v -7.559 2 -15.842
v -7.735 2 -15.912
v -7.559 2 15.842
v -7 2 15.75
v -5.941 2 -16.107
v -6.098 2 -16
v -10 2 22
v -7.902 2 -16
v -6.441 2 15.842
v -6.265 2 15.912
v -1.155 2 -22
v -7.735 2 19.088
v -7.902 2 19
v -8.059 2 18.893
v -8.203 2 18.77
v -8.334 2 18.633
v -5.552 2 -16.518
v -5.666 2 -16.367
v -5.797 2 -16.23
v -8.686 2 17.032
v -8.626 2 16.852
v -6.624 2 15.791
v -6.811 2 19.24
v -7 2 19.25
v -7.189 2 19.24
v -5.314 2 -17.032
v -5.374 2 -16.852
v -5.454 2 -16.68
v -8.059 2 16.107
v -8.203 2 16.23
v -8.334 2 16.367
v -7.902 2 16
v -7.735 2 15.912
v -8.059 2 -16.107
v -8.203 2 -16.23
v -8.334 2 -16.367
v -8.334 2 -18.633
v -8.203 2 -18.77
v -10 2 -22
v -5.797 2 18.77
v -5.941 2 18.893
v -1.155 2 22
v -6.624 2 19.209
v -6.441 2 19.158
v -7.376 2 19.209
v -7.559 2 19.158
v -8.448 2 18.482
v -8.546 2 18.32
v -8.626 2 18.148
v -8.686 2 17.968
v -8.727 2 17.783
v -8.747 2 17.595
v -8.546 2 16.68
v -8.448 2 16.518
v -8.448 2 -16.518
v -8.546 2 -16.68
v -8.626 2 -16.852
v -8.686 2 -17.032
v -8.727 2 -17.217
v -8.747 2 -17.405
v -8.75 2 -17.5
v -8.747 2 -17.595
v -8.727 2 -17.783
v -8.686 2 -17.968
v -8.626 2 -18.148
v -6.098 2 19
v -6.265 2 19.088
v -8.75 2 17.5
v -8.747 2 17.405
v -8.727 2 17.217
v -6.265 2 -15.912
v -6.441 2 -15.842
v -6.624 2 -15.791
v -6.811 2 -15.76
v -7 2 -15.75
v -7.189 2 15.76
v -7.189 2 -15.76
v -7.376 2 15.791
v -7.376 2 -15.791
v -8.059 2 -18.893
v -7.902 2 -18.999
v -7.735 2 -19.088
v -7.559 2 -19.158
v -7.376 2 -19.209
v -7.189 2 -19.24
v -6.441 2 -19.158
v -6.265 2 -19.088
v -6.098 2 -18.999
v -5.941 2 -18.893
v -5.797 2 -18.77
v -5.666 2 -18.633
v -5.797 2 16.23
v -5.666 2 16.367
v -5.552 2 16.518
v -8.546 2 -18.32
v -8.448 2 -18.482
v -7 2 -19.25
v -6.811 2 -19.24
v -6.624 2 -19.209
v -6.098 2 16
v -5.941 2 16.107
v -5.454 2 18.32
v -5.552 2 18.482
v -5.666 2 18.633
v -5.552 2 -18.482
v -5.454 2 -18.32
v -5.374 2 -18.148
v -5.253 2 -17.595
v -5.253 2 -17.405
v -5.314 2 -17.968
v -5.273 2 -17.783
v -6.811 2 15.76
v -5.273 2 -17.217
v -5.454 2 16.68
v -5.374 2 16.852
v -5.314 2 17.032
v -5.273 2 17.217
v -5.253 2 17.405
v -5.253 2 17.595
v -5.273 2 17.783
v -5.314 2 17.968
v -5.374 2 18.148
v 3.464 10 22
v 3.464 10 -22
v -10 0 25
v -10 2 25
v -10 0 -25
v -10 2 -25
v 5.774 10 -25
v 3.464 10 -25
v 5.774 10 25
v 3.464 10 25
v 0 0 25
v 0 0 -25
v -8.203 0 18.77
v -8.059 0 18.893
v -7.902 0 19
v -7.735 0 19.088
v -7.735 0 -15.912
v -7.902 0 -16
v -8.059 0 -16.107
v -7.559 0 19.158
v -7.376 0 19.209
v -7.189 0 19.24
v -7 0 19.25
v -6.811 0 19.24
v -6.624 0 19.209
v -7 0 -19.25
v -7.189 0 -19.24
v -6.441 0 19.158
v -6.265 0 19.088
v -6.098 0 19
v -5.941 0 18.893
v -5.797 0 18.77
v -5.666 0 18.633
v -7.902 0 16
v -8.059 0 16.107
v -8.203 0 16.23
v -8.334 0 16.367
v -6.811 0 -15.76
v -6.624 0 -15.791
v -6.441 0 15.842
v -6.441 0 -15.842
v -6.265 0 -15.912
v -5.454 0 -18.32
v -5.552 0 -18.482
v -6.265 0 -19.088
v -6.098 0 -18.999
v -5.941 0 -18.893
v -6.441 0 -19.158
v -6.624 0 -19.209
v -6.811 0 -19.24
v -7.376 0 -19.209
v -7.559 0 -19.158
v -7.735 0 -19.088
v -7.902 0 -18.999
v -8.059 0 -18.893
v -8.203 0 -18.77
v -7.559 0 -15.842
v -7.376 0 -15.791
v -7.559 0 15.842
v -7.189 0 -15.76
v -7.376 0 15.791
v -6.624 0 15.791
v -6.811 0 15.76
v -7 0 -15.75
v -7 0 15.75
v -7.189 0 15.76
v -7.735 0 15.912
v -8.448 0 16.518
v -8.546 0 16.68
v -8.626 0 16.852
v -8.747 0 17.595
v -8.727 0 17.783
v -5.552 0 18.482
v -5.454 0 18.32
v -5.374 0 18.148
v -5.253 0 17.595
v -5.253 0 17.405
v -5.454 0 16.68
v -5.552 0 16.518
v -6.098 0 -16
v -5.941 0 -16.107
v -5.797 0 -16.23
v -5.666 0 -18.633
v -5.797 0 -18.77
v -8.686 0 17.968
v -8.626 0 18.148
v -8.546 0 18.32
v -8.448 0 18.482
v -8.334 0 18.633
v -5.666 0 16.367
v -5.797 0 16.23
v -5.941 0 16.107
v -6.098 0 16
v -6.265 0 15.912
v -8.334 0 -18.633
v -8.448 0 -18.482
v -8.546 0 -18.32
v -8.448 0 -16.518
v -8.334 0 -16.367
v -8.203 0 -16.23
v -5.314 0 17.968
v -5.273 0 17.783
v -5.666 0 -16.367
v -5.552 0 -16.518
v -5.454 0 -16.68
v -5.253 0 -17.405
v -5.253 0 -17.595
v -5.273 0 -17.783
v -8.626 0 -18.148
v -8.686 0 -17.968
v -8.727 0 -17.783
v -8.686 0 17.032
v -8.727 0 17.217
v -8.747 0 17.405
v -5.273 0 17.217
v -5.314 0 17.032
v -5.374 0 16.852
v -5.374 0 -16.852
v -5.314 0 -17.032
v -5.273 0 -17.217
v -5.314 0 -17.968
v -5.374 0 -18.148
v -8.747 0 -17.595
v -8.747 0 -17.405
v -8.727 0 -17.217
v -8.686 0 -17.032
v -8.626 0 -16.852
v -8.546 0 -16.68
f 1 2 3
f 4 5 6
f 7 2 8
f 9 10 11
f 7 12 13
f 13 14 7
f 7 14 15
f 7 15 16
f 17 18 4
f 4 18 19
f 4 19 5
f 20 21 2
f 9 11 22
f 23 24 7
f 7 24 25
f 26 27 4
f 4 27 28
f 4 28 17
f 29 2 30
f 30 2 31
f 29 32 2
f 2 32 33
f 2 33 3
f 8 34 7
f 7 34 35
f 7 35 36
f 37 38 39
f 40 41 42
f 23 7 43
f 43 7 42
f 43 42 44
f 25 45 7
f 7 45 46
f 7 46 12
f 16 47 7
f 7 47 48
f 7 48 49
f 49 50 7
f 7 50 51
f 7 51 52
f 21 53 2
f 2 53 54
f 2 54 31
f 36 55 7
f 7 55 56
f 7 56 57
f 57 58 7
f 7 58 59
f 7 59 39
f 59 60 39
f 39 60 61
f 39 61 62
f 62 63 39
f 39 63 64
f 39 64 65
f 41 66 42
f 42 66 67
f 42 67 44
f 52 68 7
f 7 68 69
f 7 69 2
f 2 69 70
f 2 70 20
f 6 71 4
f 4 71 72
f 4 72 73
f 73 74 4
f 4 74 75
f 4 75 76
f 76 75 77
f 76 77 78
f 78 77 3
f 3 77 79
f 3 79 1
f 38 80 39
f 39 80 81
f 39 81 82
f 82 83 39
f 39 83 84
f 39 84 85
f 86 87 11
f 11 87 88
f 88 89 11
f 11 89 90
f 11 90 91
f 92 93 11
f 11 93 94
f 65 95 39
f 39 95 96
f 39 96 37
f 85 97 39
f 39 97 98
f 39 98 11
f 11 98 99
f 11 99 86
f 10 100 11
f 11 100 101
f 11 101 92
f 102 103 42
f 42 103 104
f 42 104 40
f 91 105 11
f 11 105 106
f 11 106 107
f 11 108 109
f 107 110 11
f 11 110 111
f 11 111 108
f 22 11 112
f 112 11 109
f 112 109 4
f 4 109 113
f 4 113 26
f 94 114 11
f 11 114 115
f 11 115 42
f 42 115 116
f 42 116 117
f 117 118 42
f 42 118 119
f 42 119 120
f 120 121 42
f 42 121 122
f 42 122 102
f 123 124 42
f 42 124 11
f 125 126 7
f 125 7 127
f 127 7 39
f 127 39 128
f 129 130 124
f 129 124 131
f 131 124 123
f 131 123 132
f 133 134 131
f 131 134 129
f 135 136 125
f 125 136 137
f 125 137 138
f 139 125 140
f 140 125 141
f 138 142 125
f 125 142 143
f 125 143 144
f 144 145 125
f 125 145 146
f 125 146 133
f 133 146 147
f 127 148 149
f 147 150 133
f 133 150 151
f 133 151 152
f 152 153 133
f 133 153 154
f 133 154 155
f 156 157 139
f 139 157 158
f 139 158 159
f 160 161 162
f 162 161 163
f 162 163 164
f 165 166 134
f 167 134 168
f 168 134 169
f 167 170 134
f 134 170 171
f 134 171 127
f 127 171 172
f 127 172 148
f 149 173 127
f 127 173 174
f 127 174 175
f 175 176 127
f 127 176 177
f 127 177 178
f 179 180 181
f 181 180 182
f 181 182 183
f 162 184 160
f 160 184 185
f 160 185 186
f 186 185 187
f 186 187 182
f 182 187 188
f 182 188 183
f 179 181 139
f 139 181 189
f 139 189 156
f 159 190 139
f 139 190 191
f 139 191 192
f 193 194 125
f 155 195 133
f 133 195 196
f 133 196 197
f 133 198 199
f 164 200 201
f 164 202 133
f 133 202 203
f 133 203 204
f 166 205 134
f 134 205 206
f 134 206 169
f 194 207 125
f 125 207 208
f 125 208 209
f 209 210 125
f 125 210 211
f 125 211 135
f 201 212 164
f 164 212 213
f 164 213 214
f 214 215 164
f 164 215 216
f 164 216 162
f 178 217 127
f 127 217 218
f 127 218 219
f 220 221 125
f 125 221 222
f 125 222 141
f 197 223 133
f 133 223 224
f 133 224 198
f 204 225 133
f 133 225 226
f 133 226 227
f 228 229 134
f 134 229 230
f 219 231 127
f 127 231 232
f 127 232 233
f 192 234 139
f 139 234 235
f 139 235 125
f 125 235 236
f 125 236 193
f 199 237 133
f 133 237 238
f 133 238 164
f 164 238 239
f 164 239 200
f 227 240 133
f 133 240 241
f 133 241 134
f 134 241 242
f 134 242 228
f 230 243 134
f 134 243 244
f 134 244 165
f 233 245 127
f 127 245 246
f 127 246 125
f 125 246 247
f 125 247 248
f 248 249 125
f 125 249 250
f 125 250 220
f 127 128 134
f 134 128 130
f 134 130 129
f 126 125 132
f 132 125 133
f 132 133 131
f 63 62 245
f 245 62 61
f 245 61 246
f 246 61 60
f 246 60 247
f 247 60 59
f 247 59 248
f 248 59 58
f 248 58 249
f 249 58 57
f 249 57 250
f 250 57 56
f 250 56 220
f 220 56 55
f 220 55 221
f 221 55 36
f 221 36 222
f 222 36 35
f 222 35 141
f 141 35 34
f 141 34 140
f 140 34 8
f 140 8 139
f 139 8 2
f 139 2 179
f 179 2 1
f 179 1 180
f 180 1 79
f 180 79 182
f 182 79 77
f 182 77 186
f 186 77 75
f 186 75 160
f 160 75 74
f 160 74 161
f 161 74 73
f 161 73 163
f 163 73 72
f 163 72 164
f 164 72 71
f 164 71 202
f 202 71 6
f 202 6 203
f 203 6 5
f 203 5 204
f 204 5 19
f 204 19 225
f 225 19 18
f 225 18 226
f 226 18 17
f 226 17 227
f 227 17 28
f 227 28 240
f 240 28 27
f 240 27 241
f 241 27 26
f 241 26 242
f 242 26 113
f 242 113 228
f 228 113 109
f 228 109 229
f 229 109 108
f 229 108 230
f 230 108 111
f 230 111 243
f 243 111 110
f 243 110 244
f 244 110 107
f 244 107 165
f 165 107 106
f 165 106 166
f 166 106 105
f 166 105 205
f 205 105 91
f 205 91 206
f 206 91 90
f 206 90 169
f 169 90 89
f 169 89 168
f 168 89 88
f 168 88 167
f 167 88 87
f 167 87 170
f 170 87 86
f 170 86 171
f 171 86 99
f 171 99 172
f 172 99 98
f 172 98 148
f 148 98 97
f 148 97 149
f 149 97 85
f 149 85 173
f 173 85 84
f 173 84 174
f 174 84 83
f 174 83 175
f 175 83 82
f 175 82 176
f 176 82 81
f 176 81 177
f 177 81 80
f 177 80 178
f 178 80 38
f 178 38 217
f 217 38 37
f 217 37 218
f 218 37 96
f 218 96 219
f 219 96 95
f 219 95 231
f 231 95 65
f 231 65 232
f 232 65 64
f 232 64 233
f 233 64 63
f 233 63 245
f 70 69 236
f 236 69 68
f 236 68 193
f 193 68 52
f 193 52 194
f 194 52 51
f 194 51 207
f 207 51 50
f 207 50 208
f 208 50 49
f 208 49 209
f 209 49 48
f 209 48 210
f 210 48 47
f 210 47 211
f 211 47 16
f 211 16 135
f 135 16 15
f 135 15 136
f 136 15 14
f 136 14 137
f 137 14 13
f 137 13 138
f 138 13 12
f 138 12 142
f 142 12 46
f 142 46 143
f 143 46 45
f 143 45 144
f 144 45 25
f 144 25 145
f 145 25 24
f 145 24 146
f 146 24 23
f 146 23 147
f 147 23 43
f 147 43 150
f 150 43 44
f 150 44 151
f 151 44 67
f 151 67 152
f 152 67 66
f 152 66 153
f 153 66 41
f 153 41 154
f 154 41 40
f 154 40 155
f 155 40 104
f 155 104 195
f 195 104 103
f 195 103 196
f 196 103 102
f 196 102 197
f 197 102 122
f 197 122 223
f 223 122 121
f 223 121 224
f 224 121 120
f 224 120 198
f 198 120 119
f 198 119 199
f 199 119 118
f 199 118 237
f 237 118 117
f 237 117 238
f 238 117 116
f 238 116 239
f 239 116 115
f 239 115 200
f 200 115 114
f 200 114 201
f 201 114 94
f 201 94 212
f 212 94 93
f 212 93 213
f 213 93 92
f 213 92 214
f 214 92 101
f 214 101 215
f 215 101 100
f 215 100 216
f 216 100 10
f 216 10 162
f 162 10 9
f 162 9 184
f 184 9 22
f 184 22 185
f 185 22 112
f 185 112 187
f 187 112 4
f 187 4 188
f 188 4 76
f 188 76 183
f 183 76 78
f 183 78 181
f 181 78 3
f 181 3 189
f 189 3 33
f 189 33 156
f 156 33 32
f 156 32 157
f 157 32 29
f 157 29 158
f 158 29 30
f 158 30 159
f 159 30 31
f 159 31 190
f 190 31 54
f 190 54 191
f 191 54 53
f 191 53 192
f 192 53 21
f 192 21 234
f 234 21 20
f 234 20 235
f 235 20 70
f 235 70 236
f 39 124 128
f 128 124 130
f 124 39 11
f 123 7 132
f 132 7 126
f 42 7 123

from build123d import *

# Parameters (mm, degrees)
BOSS_EXTRUDE1_DEPTH      = 25
BOSS_EXTRUDE1_DEPTH_BACK = 25
SKETCH2_R                = 1.75
CUT_EXTRUDE1_DEPTH       = 29.722813233
BOSS_EXTRUDE2_DEPTH      = 3


with BuildPart() as part:
    # Sketch1 → Boss-Extrude1 (new, two sides: drawn at the far end of the back side and taken through both)
    with BuildSketch(Plane.XY.offset(-BOSS_EXTRUDE1_DEPTH_BACK)):
        Polygon((-10, 0), (0, 0), (5.773502692, 10), (3.464101615, 10), (-1.154700538, 2), (-10, 2), align=None)
    extrude(amount=BOSS_EXTRUDE1_DEPTH + BOSS_EXTRUDE1_DEPTH_BACK)

    # Sketch2 → Cut-Extrude1 (cut, through all)
    with BuildSketch(Plane.XZ):
        with Locations((-7, 17.5)):
            Circle(SKETCH2_R)
        with Locations((-7, -17.5)):
            Circle(SKETCH2_R)
    extrude(amount=-CUT_EXTRUDE1_DEPTH, mode=Mode.SUBTRACT)

    # Sketch3 → Boss-Extrude2 (add)
    with BuildSketch(Plane(origin=(0, 0, -25), x_dir=(-1, 0, 0), z_dir=(0, 0, -1))):
        Polygon((-3.464101615, 10), (10, 2), (1.154700538, 2), align=None)
    boss_extrude2 = extrude(amount=-BOSS_EXTRUDE2_DEPTH)

    # Mirror1: Boss-Extrude2 across plane
    add(boss_extrude2.mirror(Plane.XY))


solid = part.part
